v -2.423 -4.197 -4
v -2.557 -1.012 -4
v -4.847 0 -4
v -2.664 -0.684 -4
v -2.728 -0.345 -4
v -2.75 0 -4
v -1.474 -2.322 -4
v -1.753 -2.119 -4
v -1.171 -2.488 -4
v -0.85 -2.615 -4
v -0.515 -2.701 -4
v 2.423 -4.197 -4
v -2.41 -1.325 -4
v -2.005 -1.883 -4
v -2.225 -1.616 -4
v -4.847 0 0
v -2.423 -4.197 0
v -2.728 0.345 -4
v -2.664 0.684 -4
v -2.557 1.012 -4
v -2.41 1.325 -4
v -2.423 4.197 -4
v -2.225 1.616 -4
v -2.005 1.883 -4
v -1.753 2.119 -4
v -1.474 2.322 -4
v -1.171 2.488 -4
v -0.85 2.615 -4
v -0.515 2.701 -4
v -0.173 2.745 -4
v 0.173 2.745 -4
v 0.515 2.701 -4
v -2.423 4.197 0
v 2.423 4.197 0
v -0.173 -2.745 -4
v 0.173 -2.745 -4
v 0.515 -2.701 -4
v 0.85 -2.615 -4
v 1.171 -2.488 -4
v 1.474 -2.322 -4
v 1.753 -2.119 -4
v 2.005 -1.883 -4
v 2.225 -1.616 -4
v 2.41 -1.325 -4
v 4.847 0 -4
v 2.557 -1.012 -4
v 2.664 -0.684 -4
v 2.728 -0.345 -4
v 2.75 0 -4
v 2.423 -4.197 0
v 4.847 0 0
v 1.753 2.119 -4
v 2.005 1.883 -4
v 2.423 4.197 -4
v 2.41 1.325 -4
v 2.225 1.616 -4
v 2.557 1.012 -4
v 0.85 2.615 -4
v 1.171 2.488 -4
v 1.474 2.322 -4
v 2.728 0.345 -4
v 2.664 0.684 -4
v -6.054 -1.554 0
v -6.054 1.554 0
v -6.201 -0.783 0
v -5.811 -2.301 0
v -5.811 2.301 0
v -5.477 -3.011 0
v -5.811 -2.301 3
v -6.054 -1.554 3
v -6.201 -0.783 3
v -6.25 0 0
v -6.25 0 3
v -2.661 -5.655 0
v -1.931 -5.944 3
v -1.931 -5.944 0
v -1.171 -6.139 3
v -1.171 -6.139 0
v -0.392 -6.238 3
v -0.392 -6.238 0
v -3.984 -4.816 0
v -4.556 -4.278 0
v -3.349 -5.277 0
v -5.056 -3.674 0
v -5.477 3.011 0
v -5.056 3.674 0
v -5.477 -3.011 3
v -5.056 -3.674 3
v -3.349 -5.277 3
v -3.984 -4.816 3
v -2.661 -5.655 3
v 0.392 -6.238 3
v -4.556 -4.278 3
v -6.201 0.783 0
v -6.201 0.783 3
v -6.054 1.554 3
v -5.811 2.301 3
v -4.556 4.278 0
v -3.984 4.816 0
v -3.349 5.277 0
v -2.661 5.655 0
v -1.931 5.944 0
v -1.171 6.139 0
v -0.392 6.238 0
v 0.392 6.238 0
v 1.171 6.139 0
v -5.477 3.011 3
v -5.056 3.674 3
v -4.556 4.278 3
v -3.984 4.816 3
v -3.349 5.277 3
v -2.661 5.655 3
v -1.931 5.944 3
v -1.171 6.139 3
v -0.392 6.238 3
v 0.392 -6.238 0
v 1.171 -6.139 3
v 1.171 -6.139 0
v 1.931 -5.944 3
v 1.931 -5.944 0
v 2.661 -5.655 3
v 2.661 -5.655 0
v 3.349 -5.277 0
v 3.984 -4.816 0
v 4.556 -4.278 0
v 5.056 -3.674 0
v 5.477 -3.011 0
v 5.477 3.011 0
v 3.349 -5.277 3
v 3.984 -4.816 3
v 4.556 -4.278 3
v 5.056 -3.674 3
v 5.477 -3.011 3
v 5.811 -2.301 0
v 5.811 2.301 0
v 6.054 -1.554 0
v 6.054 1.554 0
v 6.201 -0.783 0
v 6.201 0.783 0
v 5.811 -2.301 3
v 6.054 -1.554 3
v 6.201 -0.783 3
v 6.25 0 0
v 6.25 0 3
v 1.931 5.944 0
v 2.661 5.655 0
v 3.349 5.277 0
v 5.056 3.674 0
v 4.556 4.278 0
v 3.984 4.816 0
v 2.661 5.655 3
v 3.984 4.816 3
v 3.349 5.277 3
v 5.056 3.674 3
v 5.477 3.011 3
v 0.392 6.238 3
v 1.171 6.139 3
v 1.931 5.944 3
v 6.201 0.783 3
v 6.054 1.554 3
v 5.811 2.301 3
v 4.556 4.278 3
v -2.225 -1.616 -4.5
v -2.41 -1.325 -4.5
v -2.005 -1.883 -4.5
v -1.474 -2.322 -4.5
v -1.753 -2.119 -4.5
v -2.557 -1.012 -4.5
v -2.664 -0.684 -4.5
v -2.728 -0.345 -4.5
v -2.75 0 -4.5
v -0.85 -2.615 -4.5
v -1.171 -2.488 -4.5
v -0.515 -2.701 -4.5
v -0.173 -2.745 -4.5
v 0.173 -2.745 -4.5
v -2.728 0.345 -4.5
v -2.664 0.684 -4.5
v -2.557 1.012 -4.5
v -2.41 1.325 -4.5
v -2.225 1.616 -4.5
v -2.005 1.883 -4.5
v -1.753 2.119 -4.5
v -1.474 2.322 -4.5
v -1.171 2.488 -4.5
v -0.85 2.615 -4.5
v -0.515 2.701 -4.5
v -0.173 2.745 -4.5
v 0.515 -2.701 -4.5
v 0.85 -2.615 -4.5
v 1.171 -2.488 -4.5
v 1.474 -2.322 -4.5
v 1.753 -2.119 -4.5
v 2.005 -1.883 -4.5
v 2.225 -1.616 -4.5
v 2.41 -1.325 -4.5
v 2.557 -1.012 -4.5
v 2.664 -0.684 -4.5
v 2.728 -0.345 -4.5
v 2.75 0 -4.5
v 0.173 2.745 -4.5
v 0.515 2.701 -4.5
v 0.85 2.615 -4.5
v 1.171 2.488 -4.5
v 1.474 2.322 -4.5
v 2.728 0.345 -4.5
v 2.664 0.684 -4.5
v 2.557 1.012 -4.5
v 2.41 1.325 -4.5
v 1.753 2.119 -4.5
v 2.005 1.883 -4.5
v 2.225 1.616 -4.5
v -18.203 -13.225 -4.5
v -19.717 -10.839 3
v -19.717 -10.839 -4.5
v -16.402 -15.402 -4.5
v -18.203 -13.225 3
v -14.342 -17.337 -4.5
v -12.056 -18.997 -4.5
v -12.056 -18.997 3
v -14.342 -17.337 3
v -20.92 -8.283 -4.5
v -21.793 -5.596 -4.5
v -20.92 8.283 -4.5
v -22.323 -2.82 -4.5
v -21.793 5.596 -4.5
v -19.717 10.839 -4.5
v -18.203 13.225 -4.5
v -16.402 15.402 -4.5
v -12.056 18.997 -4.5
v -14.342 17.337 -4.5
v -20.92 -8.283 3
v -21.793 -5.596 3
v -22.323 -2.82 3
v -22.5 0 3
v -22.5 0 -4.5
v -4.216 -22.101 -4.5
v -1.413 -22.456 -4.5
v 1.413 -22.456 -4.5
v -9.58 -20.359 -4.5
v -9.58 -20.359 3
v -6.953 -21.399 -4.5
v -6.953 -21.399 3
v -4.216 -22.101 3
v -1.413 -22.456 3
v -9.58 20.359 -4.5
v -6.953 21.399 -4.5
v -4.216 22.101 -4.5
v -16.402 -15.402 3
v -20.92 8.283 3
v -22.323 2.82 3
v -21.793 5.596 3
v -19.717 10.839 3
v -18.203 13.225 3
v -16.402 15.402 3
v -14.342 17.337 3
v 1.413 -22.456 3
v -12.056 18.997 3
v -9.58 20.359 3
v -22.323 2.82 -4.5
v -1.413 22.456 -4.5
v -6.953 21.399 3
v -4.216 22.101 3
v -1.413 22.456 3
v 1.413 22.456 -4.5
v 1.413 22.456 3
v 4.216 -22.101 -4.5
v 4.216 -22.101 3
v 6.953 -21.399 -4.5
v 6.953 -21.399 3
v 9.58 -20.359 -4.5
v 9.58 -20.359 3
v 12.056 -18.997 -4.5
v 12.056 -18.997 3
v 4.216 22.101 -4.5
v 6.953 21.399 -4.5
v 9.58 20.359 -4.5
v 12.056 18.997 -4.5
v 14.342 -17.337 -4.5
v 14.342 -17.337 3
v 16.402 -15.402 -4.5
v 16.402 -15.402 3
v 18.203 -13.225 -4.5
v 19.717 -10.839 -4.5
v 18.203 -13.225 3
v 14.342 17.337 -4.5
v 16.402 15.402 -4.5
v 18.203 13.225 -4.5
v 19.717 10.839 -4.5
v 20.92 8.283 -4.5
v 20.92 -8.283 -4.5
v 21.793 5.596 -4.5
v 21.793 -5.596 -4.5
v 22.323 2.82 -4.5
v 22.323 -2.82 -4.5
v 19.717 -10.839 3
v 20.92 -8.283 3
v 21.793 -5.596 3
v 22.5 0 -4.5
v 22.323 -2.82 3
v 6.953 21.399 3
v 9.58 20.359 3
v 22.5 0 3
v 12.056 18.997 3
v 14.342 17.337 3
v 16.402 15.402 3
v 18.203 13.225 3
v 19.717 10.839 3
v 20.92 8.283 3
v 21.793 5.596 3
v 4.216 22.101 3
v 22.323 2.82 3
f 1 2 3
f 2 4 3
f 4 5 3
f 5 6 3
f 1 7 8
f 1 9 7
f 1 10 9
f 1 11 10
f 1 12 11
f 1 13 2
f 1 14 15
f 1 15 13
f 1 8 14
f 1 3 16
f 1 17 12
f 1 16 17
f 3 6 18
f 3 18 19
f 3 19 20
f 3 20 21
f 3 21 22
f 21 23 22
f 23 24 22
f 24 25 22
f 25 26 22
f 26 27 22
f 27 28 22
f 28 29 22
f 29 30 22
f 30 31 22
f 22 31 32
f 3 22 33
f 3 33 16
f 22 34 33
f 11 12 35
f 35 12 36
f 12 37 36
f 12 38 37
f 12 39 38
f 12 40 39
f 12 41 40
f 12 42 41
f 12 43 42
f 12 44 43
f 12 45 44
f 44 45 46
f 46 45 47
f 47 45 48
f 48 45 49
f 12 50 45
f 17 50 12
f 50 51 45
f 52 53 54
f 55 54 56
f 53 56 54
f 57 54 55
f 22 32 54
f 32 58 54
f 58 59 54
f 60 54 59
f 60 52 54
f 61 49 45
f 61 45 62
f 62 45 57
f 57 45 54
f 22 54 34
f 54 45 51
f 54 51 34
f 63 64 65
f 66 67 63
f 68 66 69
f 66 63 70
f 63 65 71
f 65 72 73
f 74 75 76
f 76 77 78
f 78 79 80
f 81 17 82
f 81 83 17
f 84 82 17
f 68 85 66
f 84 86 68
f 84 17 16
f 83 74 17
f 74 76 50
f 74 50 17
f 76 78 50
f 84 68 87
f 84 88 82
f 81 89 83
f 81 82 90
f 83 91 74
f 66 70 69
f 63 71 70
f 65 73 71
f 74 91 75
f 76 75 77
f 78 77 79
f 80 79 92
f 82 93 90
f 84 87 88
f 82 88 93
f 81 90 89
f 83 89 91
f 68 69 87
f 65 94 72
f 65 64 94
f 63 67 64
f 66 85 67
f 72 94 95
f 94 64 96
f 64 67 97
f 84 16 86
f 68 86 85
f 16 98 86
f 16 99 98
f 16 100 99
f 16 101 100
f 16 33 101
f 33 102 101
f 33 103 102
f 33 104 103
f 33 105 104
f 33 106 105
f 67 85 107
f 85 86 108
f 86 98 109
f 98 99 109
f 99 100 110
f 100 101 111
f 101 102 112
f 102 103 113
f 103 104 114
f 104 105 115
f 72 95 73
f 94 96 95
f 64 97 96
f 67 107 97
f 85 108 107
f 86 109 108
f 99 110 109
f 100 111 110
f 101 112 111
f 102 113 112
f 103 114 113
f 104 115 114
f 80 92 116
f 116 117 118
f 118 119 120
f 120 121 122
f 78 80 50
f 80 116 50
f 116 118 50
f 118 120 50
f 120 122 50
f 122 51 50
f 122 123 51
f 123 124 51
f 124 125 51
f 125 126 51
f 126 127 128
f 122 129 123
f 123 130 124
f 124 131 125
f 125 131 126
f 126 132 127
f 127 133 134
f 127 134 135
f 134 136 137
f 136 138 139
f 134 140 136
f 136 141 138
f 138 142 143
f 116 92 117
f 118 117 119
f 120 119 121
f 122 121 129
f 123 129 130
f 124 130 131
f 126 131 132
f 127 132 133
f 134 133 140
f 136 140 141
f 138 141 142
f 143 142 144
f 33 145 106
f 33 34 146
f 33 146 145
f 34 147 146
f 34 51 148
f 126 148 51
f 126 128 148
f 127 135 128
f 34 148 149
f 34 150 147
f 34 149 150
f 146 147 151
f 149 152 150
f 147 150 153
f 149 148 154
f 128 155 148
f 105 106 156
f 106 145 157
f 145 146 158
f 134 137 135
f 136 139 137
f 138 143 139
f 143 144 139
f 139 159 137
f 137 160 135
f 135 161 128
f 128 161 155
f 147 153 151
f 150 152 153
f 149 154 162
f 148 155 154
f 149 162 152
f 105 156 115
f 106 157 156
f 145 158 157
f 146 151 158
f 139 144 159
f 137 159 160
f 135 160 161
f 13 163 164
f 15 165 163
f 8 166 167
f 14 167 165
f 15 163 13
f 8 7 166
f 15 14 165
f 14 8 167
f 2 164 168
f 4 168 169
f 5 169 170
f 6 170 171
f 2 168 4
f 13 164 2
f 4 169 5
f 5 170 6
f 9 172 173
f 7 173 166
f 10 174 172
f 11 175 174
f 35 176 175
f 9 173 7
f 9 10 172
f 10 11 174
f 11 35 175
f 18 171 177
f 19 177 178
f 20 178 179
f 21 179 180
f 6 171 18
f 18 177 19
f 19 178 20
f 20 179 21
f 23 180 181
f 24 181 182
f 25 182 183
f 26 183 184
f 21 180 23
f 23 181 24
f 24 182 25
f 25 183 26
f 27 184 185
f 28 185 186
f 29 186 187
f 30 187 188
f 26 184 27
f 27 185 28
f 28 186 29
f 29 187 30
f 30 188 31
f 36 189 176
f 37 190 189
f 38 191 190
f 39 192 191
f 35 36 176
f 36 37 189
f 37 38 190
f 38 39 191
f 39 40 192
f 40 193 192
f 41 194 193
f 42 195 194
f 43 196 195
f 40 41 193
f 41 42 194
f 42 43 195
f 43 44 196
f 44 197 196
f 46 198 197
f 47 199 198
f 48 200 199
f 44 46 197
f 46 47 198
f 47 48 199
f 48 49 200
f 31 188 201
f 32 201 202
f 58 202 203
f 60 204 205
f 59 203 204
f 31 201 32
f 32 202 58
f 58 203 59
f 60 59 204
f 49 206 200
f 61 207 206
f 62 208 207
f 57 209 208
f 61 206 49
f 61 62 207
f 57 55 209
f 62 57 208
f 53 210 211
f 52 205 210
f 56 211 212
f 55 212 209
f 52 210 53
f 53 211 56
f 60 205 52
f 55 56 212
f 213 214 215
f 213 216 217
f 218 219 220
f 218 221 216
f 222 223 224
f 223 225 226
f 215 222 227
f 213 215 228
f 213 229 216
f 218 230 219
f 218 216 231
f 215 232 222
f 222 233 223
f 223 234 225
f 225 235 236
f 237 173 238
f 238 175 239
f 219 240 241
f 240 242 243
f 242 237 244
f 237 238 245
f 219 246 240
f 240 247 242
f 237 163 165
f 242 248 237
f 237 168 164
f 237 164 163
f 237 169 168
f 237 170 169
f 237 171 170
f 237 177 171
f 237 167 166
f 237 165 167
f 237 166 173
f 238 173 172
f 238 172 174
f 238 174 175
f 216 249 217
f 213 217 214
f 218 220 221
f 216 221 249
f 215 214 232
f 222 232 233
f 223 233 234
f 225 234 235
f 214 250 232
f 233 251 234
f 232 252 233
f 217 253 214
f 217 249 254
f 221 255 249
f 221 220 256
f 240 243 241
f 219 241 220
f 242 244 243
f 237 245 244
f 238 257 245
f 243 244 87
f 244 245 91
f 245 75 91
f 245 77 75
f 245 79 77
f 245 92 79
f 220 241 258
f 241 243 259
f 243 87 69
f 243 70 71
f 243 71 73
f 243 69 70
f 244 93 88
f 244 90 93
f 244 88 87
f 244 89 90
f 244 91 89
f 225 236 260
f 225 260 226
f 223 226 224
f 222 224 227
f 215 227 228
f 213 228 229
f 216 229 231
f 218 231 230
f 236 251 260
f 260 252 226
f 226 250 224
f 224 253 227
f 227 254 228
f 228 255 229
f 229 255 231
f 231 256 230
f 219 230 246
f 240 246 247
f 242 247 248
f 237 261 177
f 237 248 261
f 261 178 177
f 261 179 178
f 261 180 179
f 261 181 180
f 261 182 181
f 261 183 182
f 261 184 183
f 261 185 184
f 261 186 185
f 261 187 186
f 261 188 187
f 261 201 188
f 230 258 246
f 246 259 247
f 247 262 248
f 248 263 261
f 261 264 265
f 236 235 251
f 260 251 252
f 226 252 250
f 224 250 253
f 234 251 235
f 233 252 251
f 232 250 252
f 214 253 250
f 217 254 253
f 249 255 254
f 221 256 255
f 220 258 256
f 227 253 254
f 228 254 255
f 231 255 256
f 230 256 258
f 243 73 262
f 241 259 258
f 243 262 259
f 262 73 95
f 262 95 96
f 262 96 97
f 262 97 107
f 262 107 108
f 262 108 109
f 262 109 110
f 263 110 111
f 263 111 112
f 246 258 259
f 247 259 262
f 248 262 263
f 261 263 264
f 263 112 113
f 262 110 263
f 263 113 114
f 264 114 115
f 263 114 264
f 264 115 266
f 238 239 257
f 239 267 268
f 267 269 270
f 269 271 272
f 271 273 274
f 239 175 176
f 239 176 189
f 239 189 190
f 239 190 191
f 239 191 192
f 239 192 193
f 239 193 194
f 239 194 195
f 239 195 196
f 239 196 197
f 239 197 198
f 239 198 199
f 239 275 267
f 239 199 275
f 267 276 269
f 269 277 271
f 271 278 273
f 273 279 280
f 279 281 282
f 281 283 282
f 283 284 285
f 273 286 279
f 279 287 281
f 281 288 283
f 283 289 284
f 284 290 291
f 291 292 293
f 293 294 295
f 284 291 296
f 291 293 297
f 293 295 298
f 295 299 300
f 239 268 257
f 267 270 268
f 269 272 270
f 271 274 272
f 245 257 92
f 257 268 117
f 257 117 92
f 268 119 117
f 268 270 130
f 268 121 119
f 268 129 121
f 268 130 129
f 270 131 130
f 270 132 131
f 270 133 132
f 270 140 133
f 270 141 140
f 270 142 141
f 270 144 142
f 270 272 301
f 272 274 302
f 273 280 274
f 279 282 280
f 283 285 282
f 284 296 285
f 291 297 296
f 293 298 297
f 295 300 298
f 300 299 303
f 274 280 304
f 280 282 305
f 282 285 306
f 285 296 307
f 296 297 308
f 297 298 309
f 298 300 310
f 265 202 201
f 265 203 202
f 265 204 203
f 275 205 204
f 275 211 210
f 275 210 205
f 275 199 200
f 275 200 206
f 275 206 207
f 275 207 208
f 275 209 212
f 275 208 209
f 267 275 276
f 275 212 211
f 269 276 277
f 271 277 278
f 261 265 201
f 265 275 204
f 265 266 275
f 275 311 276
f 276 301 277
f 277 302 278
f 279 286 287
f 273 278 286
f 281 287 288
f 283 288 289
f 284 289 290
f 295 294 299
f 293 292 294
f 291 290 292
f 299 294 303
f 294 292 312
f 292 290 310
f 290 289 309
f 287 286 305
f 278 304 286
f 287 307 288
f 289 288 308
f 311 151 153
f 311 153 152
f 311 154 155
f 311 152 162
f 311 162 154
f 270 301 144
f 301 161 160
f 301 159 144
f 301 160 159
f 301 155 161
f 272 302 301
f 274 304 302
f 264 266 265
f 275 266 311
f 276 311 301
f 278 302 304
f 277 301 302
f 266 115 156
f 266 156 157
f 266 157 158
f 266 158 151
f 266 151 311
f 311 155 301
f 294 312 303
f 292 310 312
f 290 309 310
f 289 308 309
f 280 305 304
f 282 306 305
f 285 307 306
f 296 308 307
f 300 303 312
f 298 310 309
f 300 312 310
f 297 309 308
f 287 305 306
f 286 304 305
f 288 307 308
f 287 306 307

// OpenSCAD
$fn = 50;

difference() {
	union() {
		translate(v = [0, 0, -4.5]) {
			cylinder(h = 7.5, r = 22.5);
		}
	}
	union() {
		translate(v = [0, 0, 0]) {
			rotate(a = [0, 0, 0]) {
				difference() {
					union() {
						translate(v = [0, 0, -4]) {
							linear_extrude(height = 4) {
								polygon(points = [[4.8468, 0.0], [2.4234000000000004, 4.197451927062417], [-2.423399999999999, 4.197451927062417], [-4.8468, 5.935618106107392e-16], [-2.423400000000002, -4.197451927062416], [2.423399999999997, -4.197451927062419]]);
							}
						}
					}
					union();
				}
			}
		}
		#cylinder(h = 3, r = 6.25);
		#translate(v = [0, 0, -100.0]) {
			cylinder(h = 200, r = 2.75);
		}
	}
}
